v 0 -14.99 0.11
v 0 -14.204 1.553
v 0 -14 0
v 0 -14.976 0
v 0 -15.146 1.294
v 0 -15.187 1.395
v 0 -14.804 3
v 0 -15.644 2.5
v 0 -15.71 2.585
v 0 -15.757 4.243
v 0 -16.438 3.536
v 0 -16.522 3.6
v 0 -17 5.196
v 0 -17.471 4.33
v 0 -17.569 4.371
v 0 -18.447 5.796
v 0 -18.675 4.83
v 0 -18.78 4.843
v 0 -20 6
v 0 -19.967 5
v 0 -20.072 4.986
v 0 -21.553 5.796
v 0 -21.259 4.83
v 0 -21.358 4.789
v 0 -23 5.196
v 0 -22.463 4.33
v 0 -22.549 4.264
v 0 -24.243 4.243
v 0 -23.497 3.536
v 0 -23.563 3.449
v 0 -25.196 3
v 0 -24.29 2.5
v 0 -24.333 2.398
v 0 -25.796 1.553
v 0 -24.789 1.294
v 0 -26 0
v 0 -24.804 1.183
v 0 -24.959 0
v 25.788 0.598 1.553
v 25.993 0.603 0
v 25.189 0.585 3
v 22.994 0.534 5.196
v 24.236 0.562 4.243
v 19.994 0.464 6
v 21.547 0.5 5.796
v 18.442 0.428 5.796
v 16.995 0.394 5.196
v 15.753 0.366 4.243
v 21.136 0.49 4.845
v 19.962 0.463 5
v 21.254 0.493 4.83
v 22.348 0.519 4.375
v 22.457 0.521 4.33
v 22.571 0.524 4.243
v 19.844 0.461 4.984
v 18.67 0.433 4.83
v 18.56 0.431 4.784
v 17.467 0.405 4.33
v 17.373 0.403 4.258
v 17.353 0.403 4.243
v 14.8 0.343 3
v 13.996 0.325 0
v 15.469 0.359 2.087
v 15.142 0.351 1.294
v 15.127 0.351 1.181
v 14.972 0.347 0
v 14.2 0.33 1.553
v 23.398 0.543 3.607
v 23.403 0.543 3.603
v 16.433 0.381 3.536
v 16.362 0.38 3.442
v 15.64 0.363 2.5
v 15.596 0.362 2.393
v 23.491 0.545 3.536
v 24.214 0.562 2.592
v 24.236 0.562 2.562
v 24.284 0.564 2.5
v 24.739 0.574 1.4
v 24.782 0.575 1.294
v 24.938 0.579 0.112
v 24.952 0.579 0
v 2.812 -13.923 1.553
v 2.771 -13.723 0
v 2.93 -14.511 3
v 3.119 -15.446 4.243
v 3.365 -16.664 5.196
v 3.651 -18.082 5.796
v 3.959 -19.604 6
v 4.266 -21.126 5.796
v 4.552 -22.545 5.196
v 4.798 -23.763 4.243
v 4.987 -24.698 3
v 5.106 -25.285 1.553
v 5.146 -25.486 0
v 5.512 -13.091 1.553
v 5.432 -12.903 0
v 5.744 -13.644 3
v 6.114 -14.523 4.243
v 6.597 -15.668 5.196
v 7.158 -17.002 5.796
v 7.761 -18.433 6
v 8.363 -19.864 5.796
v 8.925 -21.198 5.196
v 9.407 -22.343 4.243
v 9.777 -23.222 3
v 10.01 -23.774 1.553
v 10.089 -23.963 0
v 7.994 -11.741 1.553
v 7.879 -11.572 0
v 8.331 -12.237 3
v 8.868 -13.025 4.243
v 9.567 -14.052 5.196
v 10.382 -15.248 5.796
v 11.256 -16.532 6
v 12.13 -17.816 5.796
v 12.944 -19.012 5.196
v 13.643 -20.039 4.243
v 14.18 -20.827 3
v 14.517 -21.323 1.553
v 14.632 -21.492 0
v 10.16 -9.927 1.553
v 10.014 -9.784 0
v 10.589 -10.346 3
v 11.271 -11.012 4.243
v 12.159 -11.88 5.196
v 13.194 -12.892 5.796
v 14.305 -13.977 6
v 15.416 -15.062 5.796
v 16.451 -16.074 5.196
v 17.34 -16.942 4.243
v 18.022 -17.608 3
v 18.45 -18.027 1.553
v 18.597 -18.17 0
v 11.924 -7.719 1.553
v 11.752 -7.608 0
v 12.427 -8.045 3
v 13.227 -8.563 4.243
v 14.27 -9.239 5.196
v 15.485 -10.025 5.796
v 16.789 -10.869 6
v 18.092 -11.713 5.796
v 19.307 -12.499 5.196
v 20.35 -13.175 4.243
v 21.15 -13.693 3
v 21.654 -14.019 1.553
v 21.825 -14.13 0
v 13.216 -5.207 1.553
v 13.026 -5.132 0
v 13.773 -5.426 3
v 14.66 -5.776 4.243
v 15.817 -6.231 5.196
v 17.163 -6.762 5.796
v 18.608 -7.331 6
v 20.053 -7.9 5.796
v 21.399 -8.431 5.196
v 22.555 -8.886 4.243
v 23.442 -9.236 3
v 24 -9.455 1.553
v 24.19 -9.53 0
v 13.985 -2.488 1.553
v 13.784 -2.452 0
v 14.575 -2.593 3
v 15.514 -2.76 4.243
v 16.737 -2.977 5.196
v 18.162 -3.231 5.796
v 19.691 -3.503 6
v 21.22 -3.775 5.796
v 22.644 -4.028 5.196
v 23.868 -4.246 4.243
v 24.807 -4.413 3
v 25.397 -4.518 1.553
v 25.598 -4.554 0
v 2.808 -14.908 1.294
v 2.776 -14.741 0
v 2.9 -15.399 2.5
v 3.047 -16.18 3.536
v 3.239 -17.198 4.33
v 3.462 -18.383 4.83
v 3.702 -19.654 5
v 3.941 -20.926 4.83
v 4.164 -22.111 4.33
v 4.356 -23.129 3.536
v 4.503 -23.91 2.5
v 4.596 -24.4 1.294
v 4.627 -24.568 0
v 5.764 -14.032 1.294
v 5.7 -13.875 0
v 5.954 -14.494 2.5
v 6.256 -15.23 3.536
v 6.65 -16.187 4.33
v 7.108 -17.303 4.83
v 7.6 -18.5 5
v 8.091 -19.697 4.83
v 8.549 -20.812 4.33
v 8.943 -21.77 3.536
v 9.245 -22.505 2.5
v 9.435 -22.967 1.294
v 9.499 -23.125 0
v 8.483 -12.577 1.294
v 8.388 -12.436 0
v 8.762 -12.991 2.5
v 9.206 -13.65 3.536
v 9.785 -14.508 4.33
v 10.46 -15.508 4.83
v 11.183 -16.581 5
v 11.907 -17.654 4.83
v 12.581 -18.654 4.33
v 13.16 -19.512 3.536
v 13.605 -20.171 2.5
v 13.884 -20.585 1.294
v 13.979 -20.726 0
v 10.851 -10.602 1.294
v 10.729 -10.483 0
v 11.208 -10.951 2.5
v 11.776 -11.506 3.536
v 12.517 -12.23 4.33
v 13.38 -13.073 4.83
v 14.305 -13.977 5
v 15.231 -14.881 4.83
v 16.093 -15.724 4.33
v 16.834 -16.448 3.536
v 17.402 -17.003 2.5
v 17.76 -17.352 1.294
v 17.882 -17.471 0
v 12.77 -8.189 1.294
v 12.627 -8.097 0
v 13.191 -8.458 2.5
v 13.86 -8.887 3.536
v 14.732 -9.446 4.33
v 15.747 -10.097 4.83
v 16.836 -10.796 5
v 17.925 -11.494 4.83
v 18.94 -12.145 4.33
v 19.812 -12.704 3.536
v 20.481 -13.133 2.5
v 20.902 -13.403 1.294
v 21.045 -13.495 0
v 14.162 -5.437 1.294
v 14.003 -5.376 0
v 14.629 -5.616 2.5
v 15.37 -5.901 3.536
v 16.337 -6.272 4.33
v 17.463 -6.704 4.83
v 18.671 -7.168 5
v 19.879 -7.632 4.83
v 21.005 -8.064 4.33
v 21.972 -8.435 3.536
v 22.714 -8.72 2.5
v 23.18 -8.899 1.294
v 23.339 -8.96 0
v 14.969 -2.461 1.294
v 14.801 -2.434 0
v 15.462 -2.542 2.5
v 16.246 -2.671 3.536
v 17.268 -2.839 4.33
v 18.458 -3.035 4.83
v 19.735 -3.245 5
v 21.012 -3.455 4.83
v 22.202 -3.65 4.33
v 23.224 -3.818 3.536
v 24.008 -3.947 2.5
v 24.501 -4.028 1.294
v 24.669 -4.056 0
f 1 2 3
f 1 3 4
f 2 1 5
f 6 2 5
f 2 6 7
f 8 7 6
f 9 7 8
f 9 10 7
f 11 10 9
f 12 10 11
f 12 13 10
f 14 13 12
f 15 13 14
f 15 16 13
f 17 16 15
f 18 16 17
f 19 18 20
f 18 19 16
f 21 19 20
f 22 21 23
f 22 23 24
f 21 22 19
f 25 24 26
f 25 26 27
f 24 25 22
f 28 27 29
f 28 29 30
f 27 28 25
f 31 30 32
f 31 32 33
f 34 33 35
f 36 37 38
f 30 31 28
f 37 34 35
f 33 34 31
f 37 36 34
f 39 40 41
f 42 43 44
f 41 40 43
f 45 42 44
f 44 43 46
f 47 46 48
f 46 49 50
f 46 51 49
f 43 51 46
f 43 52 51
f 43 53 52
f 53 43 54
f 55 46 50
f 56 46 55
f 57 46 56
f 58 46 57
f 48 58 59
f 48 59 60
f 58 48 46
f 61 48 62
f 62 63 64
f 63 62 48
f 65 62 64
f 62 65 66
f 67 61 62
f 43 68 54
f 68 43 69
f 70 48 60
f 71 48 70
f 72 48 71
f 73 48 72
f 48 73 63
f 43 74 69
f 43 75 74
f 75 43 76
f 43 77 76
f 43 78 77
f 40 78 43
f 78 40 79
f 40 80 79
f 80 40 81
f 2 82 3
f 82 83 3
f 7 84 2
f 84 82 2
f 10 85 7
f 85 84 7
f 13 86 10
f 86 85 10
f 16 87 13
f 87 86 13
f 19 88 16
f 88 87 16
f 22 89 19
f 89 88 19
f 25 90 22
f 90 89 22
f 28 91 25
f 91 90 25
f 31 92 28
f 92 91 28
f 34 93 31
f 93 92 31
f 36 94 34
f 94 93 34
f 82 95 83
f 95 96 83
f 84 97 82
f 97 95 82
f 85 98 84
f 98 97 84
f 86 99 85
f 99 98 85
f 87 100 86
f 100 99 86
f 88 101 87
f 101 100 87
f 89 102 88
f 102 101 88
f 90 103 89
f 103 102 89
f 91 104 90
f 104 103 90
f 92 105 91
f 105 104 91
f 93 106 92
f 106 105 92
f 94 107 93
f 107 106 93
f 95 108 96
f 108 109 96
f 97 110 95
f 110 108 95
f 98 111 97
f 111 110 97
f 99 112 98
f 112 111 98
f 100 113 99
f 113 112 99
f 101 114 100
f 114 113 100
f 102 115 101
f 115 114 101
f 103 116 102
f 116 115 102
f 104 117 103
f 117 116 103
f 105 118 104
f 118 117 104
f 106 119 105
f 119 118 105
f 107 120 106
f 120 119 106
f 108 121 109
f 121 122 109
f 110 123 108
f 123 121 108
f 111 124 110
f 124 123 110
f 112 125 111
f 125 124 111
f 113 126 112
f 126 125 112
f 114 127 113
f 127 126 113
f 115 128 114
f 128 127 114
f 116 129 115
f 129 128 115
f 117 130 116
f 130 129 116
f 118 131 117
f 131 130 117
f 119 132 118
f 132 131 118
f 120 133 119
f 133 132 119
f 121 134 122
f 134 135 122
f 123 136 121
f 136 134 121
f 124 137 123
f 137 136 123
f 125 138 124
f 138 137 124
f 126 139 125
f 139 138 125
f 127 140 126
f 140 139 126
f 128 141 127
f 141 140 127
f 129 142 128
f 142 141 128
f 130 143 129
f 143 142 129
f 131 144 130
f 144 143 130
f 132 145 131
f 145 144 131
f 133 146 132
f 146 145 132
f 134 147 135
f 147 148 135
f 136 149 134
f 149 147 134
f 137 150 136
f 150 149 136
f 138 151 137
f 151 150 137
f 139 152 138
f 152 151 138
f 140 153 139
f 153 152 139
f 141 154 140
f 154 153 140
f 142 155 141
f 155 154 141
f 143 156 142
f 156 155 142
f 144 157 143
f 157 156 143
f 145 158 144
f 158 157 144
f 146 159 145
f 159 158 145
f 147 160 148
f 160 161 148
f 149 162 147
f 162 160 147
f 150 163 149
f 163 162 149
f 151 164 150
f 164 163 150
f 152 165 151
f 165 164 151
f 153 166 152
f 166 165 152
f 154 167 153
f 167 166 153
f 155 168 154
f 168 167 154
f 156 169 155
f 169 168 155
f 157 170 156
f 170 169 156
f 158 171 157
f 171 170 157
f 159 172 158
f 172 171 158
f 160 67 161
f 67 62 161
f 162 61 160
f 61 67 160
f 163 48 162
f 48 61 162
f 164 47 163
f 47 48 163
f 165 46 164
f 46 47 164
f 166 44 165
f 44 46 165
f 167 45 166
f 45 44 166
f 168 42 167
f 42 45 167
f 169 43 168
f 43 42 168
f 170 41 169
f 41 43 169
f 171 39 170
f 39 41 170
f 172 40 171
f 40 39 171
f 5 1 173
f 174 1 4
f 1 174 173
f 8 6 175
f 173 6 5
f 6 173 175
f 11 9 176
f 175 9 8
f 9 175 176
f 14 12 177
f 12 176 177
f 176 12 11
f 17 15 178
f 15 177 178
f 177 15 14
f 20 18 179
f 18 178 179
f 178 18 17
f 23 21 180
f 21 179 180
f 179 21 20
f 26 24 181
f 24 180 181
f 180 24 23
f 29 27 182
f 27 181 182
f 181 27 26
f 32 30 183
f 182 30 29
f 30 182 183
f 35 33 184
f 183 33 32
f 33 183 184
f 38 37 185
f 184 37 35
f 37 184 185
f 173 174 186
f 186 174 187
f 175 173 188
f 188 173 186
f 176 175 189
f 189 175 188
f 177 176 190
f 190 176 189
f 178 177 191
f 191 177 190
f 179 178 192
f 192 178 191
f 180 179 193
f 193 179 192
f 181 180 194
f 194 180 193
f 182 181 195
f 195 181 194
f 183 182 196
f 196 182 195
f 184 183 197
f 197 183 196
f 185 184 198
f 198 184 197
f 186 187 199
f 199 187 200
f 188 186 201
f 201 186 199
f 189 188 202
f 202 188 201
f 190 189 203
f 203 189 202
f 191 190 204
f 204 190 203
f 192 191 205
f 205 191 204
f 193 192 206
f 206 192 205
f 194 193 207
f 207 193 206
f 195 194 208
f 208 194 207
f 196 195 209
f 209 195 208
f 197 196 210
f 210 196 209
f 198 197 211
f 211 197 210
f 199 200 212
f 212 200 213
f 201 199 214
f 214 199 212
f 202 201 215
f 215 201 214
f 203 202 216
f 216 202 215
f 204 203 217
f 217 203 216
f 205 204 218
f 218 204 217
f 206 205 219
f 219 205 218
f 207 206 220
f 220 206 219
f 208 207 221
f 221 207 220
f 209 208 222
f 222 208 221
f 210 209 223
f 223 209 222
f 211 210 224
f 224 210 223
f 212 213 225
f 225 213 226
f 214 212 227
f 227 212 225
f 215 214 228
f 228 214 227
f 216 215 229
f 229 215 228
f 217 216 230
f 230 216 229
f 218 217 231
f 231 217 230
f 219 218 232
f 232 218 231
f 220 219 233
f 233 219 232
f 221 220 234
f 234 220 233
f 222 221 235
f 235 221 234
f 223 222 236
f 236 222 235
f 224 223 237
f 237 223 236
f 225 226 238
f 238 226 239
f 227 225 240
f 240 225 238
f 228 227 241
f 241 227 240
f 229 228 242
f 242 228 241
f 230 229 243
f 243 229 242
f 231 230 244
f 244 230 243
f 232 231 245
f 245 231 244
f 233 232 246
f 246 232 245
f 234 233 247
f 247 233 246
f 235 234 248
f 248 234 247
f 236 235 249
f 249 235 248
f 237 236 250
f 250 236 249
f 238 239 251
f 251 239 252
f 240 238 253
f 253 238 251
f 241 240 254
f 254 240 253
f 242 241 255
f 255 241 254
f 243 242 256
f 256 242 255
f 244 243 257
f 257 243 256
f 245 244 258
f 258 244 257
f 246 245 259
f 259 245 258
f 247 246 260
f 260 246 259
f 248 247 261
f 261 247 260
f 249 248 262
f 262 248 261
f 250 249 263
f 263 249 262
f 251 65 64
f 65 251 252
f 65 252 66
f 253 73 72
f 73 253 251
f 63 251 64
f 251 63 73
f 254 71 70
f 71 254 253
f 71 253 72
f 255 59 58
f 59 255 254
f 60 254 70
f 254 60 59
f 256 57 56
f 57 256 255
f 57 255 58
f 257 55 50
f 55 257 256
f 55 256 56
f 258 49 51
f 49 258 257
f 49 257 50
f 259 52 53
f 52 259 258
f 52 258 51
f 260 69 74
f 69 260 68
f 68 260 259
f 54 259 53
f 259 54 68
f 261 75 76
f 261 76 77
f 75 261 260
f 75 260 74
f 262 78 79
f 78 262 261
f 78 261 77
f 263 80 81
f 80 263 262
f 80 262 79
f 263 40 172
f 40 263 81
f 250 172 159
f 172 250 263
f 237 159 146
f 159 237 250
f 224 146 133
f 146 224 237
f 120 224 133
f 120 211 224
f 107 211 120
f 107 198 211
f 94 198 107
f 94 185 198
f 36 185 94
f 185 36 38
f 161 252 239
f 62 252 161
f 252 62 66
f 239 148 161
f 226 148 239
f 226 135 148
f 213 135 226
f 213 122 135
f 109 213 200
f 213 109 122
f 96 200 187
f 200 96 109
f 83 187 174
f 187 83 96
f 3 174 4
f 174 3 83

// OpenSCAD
// file: ../build_environments.scad
// build_environments.scad: modules to build level sections
//

module pool(diameter=10.0, wall_height=2.0, step_width=3.0, connections=[])
{
    difference() {
        union() {
        difference() {
            cylinder(h=0.5,r1=diameter+step_width,r2=diameter+step_width,$fn=48);
            translate([0,0,-0.1])
                cylinder(h=0.7,r1=diameter,r2=diameter,$fn=48);
        }
        difference() {
            cylinder(h=wall_height,r1=diameter+step_width+1.0,r2=diameter+step_width+1.0,$fn=48);
            translate([0,0,-0.1])
                cylinder(h=wall_height+0.2,r1=diameter+step_width,r2=diameter+step_width,$fn=48);
        }
        }
    
        for (c = connections)
        {
            rotate([0,90,0]) {
                angle = atan2(c[1],c[0]);
                rotate([-angle,0,0]) {
                    cylinder(h=diameter+5.0,r1=c[2],r2=c[2],$fn=48);
                }
            }
        }
    }
}

module straight(length=10.0, width=2.0, dy1=0.0, dy2=0.0, dz=0.0)
{
    dims = [0, 0, 0, 0, 0, (dz/length)];
    matrix = [
        [ 1, dims[0], dims[1], 0 ],
        [ dims[2], 1, dims[4], 0 ],
        [ dims[5], dims[3], 1, 0 ],
        [ 0, 0, 0, 1 ]
    ];
    multmatrix(matrix)
    difference() {
        translate([dy1,0,0])
        union() {
            rotate([0,90,0]) {
                difference() {
                    cylinder(h=(length-dy1-dy2),r1=width+1.0,r2=width+1.0,$fn=24);
                    translate([0,0,-0.1])
                        cylinder(h=(length-dy1-dy2+0.2),r1=width,r2=width,$fn=24);
                }
                difference() {
                    cylinder(h=1.0,r1=width+2.0,r2=width+2.0,$fn=24);
                    translate([0,0,-0.1])
                        cylinder(h=1.2,r1=width,r2=width,$fn=24);
                }
                translate([0,0,(length-dy1-dy2)-1.0]) {
                    difference() {
                        cylinder(h=1.0,r1=width+2.0,r2=width+2.0,$fn=24);
                        translate([0,0,-0.1])
                            cylinder(h=1.2,r1=width,r2=width,$fn=24);
                    }
                }
            }
        }
        translate([0,0,-(2*width+4.0)/2])
            cube([3*length,3*length,2*width+4.0],center=true);
    }
}

module curve(p0=[0,0], center=[0,0], dir=1, angle=0.0, width=2.0)
{
    radius = sqrt((p0[0]-center[0])*(p0[0]-center[0]) + (p0[1]-center[1])*(p0[1]-center[1]));
    if (dir == 0) {
        difference() {
            rotate([0,0,-90])
            difference() {
                rotate_extrude(angle = angle, convexity = 10, $fn=32)
                    translate([radius, 0, 0])
                        circle(r = width+1.0,$fn=24);
                rotate([0,0,-1.0])
                    rotate_extrude(angle = angle+2.0, convexity = 10, $fn=32)
                        translate([radius, 0, 0])
                            circle(r = width,$fn=24);
            }
            translate([0,0,-(2*width+4.0)/2])
                cube([5*radius,5*radius,2*width+4.0],center=true);
        }
    }
    else {
        difference() {
            rotate([0,0,90])
            difference() {
                rotate_extrude(angle = -angle, convexity = 10, $fn=32)
                    translate([radius, 0, 0])
                        circle(r = width+1.0,$fn=24);
                rotate([0,0,1.0])
                    rotate_extrude(angle = -angle-2.0, convexity = 10, $fn=32)
                        translate([radius, 0, 0])
                            circle(r = width,$fn=24);
            }
            translate([0,0,-(2*width+4.0)/2])
                cube([5*radius,5*radius,2*width+4.0],center=true);
        }
    }

}

// test pool
//pool(diameter=12.0000, wall_height=3.0000, step_width=3.0000, connections=[[0.0000,-26.0000,2.0000], [23.6074,0.0000,2.0000]]);

// test straight, slope
//straight(length=26.0000, width=2.0000, dy1=11.8322, dy2=6.7082, dz=0.0000);
//straight(length=29.1549, width=12.0000, dy1=0.0000, dy2=0.0000, dz=-15.0000);

// test curve
//curve(p0=[23.6074, 0.0000], center=[23.6074, 5.0000], dir=0, angle=60.1011, width=2.0000);
//curve(p0=[33.6426, 12.4219], center=[37.9771, 9.9295], dir=1, angle=120.4627, width=2.0000);
// main file
use <../build_environments.scad>;
curve(p0=[176.9608, -253.5544], center=[174.0776, -233.7634], dir=0, angle=91.3294, width=5.0000);
